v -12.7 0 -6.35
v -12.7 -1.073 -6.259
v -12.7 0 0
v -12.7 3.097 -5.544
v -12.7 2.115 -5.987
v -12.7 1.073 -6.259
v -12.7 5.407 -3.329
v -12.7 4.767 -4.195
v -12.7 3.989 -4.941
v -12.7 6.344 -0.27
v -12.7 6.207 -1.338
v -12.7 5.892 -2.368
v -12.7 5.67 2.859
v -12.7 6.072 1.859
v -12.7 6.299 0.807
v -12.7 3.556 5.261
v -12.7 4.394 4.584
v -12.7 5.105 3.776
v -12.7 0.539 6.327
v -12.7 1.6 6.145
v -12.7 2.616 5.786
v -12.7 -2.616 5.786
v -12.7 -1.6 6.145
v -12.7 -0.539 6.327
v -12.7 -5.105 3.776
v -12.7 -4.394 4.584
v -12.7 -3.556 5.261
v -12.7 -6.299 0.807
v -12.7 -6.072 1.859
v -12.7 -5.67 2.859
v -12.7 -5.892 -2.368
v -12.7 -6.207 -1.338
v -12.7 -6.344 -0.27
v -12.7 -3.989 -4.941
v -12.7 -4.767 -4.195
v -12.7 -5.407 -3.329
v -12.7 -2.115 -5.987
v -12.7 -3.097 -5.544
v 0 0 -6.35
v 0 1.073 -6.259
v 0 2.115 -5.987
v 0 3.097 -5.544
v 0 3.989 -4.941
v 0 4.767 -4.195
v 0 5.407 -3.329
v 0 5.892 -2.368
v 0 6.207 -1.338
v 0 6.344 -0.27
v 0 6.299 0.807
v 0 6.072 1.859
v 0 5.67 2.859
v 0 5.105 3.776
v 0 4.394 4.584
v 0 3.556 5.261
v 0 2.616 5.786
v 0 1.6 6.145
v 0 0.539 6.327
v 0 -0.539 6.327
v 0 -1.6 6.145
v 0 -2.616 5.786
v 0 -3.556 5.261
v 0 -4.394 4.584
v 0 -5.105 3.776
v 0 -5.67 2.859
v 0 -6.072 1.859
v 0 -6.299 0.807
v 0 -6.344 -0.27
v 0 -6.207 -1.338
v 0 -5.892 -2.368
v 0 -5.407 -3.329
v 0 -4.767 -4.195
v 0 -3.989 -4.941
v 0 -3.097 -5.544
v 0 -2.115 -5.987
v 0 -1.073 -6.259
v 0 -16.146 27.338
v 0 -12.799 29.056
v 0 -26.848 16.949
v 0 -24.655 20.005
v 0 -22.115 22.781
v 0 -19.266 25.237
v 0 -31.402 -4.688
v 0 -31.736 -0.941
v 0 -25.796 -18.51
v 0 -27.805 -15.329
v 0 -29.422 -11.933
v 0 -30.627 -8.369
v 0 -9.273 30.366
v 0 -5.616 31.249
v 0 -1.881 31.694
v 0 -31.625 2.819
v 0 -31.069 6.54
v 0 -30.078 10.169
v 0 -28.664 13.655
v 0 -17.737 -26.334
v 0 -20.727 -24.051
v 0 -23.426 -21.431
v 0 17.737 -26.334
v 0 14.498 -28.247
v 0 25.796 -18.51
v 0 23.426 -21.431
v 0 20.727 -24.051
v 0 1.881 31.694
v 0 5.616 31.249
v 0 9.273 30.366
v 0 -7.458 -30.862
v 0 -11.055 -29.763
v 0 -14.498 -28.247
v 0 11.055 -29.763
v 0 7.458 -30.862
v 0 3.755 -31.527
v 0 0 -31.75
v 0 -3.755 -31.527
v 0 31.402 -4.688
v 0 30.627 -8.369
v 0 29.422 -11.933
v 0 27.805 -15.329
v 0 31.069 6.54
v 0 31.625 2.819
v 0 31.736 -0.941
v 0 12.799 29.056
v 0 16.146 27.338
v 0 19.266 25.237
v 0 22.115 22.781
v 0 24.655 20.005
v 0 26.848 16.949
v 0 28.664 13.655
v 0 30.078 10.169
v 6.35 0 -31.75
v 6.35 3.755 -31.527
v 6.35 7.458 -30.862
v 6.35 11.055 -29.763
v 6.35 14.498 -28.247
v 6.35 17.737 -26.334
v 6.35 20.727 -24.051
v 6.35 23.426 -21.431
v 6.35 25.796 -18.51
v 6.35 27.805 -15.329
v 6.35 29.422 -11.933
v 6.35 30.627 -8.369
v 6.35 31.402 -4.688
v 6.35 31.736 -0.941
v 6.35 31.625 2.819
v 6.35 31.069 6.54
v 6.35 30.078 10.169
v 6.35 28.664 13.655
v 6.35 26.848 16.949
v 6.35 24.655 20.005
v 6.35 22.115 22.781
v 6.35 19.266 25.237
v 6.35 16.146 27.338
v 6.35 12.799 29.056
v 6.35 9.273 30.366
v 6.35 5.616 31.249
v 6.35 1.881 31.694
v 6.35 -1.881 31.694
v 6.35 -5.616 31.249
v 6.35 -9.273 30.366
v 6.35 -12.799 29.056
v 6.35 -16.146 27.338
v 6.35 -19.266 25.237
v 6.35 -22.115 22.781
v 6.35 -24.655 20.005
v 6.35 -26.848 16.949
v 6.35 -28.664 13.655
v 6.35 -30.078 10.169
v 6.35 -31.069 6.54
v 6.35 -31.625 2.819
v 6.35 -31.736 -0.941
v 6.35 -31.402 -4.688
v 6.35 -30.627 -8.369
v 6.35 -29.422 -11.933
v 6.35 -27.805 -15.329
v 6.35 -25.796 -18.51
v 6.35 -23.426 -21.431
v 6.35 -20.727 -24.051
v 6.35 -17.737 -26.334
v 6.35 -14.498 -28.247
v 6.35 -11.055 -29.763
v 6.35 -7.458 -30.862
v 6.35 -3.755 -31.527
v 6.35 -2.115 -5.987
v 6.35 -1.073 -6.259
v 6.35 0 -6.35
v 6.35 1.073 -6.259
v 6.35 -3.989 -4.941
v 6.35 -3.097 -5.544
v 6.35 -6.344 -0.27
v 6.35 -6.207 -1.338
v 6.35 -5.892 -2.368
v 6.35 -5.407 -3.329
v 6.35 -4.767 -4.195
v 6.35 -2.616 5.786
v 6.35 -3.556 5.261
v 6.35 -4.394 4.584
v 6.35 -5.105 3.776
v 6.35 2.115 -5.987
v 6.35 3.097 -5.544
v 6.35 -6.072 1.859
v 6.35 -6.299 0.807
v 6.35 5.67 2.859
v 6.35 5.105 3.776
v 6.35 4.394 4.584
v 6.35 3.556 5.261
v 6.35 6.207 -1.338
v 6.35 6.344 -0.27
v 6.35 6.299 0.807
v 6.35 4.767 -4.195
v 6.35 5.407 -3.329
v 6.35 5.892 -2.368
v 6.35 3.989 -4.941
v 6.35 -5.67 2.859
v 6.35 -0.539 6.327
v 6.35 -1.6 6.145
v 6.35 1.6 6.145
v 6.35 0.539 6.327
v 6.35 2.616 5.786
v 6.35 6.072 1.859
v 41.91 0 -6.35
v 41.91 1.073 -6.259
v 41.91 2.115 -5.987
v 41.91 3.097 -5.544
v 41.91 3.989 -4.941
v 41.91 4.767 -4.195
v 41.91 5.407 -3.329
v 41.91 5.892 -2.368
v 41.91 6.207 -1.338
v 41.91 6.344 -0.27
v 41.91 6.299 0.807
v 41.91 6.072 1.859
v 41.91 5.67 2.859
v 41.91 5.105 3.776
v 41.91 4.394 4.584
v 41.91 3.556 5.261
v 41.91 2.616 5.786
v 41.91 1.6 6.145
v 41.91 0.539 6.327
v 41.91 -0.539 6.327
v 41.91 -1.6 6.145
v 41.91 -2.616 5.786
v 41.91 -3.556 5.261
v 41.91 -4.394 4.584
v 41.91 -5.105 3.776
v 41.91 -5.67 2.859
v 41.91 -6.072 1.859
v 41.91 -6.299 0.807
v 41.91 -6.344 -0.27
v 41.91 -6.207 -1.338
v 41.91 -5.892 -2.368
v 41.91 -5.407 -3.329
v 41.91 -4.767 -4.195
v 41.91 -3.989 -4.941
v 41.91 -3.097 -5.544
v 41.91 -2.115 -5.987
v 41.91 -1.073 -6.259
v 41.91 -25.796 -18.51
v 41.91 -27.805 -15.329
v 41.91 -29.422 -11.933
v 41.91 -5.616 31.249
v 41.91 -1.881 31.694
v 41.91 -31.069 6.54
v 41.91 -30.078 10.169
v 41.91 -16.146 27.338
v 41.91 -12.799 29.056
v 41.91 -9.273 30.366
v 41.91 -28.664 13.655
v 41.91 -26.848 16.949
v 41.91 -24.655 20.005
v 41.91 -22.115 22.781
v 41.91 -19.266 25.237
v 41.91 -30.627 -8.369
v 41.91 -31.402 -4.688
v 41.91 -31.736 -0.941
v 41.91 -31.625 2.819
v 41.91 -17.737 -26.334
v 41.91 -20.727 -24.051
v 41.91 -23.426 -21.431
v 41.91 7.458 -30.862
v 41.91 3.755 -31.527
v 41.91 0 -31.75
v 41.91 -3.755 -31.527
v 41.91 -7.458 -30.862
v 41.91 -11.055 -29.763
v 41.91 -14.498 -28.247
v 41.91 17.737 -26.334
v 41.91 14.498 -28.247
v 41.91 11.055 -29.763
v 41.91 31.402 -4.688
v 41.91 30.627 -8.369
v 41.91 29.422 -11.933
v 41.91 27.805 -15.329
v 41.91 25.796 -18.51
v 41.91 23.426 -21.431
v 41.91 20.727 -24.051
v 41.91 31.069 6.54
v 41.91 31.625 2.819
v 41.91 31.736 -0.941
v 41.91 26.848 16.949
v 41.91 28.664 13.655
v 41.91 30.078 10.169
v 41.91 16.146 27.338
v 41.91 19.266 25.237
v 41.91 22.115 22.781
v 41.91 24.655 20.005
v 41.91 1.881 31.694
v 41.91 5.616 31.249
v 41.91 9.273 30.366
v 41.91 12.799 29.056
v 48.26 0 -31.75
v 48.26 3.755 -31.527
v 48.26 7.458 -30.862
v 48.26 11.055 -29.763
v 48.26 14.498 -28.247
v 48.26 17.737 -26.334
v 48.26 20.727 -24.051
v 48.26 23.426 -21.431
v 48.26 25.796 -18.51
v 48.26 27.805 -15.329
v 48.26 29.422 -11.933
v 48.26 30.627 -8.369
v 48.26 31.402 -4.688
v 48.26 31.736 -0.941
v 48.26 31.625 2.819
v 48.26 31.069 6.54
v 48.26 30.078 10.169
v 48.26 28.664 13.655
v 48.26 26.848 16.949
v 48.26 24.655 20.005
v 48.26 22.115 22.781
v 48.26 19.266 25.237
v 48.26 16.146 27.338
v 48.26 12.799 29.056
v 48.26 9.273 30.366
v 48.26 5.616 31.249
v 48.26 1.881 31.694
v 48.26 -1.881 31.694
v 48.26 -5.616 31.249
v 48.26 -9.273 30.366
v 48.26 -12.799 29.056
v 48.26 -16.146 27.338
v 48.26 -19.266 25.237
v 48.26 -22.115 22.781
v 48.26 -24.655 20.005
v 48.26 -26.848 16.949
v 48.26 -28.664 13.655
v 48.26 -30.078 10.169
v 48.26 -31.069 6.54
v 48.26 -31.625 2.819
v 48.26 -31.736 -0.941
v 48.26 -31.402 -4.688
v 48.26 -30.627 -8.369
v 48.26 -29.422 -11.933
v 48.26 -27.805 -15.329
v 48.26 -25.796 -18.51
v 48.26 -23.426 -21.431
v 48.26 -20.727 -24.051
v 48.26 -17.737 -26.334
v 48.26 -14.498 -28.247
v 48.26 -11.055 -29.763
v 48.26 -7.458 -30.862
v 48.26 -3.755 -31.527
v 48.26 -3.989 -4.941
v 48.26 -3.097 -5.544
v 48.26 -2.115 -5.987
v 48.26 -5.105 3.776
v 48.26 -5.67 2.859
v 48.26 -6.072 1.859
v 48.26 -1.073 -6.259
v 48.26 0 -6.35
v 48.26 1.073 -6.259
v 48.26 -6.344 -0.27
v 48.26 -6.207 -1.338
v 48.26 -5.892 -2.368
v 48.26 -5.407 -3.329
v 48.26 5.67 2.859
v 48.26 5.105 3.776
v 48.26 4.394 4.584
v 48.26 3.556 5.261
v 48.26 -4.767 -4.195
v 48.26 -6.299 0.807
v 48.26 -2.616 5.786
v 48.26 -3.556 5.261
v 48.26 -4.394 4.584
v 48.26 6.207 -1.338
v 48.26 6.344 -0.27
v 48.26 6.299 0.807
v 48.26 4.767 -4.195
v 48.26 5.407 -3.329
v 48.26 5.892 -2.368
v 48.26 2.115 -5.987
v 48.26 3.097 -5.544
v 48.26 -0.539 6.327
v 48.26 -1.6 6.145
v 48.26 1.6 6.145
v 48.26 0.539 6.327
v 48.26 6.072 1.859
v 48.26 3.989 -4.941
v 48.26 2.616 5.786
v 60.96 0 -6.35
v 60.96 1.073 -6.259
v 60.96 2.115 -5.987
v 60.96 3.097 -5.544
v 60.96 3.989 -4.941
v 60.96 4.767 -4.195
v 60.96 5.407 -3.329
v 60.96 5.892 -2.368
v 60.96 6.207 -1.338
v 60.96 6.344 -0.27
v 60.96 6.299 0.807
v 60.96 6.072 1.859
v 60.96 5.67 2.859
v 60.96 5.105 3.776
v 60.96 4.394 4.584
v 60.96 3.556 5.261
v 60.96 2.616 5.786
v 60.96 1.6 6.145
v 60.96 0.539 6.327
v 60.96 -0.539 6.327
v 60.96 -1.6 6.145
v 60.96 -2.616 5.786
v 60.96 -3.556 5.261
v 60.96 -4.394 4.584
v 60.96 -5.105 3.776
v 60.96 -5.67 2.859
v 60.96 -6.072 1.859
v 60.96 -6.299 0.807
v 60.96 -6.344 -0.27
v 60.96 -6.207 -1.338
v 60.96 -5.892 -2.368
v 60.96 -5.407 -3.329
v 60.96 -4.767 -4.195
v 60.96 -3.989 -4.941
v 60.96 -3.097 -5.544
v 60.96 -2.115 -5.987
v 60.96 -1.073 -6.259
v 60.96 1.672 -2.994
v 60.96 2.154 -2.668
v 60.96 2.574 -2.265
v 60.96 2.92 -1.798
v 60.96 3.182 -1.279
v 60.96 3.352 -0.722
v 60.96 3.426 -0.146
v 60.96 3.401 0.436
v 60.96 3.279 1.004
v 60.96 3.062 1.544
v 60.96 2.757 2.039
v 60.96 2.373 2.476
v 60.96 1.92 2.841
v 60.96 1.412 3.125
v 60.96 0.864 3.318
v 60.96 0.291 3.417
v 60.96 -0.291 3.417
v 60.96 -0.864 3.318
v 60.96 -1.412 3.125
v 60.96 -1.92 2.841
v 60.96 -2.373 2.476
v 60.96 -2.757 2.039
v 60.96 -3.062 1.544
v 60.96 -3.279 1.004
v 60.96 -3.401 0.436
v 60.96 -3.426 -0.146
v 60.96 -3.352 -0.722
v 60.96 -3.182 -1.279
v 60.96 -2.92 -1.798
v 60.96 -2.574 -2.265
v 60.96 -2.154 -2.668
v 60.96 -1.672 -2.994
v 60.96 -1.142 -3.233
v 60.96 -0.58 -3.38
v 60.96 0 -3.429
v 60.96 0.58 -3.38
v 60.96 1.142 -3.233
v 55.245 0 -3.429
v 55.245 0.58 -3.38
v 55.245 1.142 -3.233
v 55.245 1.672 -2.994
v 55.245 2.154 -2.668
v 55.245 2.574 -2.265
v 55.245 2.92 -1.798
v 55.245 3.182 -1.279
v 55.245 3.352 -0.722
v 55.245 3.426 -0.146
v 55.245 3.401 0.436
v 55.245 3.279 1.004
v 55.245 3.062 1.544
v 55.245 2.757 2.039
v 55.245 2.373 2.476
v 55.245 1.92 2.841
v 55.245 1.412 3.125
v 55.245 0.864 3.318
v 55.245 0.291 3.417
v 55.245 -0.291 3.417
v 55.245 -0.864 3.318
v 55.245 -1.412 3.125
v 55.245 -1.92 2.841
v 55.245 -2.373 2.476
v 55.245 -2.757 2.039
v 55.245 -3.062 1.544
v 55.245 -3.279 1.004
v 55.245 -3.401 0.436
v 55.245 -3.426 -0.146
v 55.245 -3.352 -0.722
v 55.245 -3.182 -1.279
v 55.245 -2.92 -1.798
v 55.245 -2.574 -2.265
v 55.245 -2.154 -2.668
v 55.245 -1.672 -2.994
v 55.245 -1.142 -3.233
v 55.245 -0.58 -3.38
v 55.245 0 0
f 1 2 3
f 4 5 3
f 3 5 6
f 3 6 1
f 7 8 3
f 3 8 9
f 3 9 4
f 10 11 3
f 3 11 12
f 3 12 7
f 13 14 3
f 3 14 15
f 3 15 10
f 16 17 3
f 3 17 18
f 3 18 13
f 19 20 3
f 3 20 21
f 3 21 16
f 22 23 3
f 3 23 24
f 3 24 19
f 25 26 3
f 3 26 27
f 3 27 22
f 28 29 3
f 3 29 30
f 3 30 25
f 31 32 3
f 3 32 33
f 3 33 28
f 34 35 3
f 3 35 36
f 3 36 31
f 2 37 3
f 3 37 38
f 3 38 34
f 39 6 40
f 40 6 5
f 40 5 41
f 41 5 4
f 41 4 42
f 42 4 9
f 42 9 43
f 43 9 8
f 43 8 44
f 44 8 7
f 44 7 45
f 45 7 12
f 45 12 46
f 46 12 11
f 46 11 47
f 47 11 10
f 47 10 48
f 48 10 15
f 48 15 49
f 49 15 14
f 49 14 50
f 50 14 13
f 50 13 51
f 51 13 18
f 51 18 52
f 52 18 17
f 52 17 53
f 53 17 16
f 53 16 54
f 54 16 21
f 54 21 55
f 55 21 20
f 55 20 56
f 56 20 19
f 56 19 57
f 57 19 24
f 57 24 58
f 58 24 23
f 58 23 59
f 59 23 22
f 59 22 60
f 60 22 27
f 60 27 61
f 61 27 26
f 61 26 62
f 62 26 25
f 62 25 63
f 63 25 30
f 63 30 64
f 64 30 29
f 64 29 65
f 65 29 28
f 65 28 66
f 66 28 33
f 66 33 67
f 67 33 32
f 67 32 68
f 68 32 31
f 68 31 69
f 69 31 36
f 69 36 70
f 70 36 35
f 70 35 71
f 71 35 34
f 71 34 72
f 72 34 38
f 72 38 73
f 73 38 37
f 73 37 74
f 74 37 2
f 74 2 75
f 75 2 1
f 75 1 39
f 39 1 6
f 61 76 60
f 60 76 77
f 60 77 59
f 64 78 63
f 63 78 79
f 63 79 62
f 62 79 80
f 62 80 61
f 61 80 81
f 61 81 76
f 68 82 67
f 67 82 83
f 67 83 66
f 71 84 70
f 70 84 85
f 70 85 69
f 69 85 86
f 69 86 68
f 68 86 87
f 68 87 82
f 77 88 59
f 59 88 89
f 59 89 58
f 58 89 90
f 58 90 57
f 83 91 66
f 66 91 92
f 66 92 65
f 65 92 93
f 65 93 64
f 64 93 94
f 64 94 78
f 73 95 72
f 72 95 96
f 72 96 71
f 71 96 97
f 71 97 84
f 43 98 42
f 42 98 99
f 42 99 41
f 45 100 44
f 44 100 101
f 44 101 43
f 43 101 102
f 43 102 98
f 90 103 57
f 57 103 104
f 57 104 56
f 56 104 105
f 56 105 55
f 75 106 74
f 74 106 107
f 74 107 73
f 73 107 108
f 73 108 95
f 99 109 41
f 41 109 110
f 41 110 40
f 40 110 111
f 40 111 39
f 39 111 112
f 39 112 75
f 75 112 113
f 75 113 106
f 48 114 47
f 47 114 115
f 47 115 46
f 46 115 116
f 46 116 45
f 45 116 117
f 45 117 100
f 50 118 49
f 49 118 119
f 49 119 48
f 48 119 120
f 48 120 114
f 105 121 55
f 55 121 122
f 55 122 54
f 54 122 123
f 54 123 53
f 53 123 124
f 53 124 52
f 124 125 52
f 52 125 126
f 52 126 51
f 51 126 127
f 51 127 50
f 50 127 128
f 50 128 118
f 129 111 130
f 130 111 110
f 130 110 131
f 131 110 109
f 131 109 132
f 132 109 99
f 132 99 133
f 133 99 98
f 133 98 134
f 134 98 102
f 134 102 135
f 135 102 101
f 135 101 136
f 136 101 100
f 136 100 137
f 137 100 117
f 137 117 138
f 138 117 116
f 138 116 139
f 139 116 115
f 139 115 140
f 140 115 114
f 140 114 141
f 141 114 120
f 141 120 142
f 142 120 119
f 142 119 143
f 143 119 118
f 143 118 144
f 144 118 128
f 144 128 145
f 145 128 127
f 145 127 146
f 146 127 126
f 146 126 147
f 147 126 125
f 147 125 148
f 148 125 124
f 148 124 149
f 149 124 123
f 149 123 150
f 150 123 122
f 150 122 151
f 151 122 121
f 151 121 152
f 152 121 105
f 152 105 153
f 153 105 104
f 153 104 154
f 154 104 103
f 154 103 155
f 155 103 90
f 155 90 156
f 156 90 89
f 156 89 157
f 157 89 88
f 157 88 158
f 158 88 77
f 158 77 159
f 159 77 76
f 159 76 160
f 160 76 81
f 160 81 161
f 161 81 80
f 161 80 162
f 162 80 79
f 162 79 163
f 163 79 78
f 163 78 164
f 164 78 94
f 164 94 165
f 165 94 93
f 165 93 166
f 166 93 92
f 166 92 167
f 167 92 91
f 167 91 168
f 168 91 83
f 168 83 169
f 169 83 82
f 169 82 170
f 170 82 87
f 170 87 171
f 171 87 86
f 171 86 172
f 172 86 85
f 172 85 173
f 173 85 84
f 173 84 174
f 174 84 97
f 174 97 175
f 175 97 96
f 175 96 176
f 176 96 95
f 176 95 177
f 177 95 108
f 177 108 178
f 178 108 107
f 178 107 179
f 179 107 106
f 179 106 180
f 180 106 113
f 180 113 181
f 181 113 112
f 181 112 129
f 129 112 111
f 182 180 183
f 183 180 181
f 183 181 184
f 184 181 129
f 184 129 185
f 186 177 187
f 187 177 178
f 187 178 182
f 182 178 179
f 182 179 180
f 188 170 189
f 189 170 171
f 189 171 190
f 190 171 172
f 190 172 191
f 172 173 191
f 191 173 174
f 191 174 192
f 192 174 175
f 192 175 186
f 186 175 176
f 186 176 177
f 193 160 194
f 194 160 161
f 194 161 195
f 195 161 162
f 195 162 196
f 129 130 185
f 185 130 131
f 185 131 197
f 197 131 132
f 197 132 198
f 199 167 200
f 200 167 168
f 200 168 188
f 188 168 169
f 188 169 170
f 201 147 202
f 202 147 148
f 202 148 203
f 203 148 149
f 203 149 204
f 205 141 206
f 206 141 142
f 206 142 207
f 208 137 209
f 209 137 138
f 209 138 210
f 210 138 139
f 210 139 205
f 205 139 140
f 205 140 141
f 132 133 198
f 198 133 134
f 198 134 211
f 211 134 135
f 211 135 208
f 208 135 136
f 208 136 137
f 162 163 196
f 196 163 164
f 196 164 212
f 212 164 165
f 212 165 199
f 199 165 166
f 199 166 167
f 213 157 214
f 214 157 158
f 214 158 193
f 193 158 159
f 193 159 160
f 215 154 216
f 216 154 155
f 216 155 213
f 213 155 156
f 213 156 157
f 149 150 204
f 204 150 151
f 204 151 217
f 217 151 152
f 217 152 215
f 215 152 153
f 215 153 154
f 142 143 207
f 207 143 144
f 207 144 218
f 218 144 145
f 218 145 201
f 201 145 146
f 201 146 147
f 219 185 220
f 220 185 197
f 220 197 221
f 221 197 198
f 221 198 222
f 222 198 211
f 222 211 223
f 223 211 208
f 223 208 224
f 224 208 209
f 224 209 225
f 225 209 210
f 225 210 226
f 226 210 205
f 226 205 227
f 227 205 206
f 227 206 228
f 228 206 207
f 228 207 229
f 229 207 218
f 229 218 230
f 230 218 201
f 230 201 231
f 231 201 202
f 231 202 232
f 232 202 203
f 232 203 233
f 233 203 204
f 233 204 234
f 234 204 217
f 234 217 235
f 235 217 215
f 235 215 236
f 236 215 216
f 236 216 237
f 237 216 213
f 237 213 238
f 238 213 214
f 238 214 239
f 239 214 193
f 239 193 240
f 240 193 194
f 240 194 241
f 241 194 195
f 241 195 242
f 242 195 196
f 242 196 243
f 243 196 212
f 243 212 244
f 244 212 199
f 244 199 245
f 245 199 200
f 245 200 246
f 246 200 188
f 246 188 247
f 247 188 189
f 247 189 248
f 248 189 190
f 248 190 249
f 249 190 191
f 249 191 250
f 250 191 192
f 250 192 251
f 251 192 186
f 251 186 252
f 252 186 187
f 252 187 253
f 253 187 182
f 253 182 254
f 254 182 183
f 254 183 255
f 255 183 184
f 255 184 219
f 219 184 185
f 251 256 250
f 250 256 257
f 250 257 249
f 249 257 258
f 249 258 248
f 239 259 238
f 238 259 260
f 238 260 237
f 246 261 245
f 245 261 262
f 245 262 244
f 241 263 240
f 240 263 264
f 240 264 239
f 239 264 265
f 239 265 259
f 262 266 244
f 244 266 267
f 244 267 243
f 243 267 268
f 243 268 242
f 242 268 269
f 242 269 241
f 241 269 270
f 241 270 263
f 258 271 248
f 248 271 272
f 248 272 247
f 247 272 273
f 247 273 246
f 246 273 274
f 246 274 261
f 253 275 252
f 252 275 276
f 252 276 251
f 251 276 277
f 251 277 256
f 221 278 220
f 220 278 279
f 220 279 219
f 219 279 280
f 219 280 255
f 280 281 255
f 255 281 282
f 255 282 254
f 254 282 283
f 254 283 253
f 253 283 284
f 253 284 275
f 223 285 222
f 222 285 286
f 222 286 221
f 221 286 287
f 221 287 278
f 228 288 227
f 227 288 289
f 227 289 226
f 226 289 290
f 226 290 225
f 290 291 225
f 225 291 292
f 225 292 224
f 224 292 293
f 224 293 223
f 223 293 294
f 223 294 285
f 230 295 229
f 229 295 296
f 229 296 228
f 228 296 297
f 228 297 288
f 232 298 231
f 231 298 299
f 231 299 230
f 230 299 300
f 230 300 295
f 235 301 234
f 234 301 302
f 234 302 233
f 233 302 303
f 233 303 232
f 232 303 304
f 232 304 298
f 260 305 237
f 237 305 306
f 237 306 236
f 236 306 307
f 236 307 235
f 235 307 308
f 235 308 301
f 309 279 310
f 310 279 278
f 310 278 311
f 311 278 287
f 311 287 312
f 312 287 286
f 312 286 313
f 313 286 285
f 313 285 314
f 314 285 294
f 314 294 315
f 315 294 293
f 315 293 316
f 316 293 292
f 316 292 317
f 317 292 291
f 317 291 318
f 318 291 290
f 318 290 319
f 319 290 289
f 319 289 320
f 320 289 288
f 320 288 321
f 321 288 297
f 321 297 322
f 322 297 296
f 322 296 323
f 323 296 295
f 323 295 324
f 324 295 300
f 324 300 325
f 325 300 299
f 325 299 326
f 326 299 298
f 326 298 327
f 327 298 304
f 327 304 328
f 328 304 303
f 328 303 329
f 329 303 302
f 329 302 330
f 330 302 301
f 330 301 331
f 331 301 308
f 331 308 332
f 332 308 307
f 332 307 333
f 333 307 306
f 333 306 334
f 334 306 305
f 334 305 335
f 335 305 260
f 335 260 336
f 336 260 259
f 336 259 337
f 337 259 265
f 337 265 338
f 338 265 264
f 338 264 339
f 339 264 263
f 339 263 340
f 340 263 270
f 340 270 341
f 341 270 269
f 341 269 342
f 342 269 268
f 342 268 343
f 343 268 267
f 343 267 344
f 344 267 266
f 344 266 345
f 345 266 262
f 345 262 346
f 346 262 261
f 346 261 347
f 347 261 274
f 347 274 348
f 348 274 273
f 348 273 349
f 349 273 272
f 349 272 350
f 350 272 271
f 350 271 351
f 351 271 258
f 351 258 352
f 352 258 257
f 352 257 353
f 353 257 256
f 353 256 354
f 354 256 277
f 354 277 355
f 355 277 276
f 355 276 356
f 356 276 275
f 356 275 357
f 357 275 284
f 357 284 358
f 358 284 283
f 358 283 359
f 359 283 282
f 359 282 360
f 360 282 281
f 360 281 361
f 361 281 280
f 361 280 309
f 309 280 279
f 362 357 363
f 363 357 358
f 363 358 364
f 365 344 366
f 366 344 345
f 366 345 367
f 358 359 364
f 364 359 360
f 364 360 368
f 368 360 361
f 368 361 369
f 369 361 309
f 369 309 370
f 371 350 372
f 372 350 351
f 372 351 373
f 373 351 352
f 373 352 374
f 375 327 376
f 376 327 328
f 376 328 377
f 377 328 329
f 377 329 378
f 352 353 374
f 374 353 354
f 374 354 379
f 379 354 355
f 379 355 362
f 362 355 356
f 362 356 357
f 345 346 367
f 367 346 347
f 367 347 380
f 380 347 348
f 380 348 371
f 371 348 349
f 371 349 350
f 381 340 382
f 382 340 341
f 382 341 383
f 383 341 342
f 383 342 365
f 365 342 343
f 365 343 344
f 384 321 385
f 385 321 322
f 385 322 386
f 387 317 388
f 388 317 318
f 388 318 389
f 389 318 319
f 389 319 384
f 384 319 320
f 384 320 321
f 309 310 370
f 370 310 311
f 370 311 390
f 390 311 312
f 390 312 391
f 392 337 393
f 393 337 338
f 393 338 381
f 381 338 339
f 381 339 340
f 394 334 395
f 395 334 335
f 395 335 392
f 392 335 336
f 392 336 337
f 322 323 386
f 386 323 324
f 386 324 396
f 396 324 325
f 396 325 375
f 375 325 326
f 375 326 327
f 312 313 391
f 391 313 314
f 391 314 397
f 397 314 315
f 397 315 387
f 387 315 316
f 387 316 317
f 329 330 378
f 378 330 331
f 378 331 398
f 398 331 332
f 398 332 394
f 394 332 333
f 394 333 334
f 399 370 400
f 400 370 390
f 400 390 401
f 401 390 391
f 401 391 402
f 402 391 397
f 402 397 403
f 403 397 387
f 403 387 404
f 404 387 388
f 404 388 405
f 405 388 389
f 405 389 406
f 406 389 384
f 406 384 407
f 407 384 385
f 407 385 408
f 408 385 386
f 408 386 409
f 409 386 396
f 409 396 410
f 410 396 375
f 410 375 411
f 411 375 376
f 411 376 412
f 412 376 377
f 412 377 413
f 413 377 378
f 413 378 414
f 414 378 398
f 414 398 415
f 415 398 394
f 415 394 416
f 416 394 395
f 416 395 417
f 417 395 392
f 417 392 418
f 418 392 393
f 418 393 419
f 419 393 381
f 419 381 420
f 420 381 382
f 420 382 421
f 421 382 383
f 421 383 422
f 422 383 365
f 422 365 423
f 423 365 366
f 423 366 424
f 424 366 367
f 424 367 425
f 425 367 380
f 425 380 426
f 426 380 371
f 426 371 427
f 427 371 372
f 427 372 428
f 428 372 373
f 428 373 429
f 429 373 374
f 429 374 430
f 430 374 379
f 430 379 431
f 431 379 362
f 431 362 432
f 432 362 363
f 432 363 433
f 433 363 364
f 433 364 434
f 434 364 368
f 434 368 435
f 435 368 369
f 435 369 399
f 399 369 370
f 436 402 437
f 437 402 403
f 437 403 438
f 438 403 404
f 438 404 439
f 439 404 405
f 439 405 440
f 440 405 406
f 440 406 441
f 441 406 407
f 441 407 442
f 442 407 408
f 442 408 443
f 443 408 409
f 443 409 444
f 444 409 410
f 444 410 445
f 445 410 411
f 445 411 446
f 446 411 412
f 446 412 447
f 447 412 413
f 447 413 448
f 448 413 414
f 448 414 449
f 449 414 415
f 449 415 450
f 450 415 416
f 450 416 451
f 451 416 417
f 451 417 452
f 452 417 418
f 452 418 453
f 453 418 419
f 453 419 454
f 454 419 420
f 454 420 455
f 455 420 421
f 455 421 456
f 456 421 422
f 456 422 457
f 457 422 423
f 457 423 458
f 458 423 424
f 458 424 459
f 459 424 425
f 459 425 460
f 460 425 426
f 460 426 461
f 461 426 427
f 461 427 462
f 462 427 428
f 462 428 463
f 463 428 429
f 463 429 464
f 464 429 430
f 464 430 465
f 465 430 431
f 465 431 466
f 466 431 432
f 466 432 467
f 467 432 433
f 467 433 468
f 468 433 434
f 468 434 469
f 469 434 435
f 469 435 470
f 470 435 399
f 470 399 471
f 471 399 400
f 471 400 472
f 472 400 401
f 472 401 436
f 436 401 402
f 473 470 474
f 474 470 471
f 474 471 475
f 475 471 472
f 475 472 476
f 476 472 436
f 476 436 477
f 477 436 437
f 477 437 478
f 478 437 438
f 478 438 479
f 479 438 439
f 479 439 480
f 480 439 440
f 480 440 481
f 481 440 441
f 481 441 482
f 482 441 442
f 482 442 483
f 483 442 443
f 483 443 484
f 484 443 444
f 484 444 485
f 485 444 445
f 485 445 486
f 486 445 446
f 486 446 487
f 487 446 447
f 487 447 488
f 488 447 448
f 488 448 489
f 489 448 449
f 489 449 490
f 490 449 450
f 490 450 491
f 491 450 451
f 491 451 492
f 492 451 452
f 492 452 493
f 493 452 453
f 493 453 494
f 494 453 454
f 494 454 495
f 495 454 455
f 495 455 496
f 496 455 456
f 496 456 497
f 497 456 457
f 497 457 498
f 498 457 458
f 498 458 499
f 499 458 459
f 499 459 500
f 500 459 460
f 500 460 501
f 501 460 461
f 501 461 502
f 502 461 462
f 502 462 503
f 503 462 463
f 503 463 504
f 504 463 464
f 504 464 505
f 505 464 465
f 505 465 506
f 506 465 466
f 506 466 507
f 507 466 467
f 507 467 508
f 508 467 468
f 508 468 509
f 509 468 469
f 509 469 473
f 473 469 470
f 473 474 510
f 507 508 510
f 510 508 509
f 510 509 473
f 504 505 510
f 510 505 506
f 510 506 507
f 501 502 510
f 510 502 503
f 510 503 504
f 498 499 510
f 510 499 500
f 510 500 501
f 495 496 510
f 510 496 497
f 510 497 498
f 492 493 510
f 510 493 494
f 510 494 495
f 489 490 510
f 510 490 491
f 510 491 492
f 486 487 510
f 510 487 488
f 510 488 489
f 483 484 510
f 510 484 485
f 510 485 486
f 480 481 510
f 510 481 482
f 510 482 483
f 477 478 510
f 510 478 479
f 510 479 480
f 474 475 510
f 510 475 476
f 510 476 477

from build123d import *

# Parameters (mm, degrees)
SKETCH4_R          = 3.429
CUT_EXTRUDE1_DEPTH = 5.715


with BuildPart() as part:
    # Sketch2 → Revolve1 (revolve)
    with BuildSketch(Plane.XY, mode=Mode.PRIVATE) as revolve1_sk:
        Polygon((0, 31.75), (6.35, 31.75), (6.35, 6.35), (41.91, 6.35), (41.91, 31.75), (48.26, 31.75), (48.26, 6.35), (60.96, 6.35), (60.96, 0), (48.26, 0), (0, 0), (-12.7, 0), (-12.7, 6.35), (0, 6.35), align=None)
    revolve(revolve1_sk.sketch.rotate(Axis((48.26, 0, 0), (-1, 0, 0)), 90), axis=Axis((48.26, 0, 0), (-1, 0, 0)))

    # Sketch4 → Cut-Extrude1 (cut)
    with BuildSketch(Plane(origin=(60.96, 0, 0), x_dir=(0, 0, -1), z_dir=(1, 0, 0))):
        Circle(SKETCH4_R)
    extrude(amount=-CUT_EXTRUDE1_DEPTH, mode=Mode.SUBTRACT)


solid = part.part
